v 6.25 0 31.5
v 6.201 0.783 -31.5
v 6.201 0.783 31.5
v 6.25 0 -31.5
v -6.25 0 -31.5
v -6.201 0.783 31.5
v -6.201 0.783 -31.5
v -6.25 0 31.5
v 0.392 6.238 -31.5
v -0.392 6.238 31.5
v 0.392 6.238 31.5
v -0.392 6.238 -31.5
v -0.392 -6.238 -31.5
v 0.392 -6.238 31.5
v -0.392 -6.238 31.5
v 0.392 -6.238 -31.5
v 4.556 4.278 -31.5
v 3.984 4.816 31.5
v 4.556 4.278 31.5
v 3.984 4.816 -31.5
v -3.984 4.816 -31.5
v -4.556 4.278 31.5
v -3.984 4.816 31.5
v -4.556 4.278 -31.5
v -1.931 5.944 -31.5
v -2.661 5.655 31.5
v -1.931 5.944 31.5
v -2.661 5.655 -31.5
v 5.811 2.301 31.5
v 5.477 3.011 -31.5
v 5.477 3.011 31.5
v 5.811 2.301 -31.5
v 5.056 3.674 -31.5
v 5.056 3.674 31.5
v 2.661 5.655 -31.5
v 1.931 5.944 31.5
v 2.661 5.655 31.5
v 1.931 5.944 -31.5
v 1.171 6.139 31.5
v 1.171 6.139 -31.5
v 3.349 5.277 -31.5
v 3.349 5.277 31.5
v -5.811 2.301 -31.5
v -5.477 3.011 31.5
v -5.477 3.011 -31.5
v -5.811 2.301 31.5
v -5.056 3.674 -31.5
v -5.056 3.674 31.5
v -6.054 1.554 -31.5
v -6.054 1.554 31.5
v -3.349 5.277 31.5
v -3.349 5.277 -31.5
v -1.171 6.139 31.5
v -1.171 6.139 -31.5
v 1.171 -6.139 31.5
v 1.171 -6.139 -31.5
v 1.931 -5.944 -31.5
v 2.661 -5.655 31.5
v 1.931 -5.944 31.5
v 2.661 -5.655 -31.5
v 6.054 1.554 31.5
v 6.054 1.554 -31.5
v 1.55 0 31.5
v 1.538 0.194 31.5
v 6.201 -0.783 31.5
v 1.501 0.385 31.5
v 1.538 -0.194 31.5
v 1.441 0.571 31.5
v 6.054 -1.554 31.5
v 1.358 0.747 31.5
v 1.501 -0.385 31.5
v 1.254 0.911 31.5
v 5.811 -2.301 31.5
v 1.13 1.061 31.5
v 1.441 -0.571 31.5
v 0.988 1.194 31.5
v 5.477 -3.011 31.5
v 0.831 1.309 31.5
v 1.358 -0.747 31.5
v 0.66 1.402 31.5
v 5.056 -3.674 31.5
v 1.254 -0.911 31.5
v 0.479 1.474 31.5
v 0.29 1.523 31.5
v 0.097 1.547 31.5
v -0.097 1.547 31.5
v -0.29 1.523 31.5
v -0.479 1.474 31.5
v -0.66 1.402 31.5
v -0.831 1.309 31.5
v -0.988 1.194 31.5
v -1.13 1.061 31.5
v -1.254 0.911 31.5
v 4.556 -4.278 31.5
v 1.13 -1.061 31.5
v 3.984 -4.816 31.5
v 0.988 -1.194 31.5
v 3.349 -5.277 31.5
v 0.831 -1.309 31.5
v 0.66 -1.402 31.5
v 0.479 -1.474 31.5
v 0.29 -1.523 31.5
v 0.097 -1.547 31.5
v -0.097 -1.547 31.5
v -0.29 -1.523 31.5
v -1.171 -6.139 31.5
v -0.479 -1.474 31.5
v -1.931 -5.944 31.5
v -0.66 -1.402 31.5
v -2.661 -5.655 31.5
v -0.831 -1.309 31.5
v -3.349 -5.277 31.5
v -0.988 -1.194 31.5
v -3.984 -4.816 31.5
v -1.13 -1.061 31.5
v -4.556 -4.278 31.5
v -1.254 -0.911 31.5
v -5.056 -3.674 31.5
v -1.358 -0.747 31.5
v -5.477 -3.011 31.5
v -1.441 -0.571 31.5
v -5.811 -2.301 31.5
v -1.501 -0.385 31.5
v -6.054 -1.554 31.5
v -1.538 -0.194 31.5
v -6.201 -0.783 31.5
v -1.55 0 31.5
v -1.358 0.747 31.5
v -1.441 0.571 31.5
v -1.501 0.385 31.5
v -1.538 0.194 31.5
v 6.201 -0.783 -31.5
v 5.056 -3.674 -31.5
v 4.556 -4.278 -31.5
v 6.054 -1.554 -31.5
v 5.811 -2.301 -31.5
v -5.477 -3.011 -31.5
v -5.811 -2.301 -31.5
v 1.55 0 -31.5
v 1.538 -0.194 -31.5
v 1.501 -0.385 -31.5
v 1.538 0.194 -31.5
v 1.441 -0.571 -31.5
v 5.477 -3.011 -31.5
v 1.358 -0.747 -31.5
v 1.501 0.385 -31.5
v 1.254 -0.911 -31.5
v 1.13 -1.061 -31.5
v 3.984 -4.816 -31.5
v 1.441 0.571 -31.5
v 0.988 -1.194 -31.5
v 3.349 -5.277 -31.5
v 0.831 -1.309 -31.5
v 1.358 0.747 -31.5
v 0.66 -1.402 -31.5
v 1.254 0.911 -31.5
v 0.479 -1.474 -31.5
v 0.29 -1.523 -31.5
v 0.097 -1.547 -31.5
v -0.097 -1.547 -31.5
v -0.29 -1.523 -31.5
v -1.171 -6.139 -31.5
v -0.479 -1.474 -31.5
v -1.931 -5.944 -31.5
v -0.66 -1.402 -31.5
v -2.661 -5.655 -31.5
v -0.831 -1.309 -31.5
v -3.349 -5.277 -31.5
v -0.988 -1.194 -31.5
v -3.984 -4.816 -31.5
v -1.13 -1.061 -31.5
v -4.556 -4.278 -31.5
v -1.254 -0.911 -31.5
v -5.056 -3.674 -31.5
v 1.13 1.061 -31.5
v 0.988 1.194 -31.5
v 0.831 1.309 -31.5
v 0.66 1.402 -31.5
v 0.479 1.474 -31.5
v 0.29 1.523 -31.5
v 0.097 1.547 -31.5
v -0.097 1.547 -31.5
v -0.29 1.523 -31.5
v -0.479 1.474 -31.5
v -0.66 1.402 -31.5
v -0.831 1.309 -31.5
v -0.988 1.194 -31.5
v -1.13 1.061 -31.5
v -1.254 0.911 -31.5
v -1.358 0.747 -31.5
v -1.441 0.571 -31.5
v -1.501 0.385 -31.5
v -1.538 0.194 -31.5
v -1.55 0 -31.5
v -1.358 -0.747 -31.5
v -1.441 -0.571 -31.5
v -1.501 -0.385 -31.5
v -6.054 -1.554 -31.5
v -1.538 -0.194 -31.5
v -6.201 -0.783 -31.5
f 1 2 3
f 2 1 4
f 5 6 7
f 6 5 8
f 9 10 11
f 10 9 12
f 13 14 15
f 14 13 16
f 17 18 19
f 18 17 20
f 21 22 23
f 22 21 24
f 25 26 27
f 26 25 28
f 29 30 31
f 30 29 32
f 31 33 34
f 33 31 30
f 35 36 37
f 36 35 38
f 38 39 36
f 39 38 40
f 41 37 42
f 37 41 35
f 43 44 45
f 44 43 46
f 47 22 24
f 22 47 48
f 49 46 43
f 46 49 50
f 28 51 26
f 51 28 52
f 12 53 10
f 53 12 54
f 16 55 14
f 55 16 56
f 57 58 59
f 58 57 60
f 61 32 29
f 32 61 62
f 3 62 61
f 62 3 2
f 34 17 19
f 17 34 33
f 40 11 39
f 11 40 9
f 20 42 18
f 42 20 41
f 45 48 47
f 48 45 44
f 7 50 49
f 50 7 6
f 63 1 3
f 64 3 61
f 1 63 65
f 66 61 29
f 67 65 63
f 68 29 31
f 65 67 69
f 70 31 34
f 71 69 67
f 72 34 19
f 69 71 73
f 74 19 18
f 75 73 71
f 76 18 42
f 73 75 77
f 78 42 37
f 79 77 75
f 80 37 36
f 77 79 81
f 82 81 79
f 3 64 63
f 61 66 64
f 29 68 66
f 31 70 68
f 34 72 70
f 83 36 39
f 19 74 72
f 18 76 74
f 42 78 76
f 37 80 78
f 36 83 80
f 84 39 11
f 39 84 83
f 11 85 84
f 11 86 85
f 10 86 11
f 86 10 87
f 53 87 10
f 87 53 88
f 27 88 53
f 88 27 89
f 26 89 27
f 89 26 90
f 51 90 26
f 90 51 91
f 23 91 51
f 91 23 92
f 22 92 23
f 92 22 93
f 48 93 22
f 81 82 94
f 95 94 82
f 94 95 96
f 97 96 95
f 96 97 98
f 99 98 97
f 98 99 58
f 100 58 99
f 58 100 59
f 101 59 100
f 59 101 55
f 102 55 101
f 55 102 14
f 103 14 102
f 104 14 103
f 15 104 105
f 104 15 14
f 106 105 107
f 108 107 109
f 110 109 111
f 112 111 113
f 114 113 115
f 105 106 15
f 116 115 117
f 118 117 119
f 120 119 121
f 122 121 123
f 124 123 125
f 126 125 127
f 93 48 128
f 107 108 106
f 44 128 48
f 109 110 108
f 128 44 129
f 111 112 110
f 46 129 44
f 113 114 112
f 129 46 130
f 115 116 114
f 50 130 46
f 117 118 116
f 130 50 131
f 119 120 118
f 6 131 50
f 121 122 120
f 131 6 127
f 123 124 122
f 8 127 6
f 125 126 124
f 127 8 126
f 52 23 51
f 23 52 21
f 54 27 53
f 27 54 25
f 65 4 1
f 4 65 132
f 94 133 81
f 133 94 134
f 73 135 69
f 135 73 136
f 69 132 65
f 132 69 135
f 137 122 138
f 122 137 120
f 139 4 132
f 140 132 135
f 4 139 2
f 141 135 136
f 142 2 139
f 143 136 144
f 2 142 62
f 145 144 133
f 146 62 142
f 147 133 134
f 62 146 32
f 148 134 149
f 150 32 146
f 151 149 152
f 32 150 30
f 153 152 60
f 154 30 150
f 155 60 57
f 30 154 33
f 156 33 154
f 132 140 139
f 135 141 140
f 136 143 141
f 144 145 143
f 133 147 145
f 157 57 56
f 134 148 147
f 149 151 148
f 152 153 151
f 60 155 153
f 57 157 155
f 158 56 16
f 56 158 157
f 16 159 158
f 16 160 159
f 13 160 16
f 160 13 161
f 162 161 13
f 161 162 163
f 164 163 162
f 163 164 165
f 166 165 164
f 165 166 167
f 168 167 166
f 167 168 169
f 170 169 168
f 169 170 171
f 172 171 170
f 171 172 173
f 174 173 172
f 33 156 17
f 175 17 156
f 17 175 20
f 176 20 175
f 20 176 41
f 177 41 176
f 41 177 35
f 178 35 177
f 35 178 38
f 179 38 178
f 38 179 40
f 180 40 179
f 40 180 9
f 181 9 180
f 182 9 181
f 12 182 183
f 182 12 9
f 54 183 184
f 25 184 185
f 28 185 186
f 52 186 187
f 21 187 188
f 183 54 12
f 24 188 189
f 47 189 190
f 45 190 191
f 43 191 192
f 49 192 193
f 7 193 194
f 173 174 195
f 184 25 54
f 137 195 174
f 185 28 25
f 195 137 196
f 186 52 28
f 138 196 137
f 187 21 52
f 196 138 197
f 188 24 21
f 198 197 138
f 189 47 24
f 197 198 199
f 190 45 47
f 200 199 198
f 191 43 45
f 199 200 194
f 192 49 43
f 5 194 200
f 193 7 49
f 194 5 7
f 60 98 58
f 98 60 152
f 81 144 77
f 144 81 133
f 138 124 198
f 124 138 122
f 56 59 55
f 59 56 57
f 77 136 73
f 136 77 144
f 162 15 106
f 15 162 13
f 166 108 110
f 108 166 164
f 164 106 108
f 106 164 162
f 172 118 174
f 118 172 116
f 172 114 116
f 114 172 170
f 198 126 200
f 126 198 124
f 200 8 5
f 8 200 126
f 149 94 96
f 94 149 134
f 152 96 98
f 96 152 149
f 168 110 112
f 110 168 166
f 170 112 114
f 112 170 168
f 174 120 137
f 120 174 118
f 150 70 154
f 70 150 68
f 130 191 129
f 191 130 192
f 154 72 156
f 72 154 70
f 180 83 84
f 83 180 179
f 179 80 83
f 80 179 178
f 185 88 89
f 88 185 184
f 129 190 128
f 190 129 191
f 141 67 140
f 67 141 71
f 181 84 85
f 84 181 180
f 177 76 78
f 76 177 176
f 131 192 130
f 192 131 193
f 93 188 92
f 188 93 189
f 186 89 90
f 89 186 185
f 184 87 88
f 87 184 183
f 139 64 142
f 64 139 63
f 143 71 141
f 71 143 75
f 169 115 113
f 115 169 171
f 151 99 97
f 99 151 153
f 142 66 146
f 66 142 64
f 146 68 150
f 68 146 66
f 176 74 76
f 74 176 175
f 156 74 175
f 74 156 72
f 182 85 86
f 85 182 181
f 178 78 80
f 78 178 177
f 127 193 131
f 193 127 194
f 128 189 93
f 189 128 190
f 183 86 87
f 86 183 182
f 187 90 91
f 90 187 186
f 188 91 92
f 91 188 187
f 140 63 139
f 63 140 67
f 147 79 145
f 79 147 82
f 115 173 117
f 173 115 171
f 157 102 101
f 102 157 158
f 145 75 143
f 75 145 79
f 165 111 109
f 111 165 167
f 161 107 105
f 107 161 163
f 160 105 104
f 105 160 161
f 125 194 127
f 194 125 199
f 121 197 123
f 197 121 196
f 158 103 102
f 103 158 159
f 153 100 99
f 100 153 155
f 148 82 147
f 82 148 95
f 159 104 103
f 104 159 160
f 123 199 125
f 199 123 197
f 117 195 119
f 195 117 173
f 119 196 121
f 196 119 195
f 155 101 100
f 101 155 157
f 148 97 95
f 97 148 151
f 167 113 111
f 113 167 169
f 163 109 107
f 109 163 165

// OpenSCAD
$fn = 50;


difference() {
	union() {
		translate(v = [0, 0, -31.5000000000]) {
			cylinder(h = 63, r = 6.2500000000);
		}
	}
	union() {
		translate(v = [0, 0, -100.0000000000]) {
			cylinder(h = 200, r = 1.5500000000);
		}
	}
}
